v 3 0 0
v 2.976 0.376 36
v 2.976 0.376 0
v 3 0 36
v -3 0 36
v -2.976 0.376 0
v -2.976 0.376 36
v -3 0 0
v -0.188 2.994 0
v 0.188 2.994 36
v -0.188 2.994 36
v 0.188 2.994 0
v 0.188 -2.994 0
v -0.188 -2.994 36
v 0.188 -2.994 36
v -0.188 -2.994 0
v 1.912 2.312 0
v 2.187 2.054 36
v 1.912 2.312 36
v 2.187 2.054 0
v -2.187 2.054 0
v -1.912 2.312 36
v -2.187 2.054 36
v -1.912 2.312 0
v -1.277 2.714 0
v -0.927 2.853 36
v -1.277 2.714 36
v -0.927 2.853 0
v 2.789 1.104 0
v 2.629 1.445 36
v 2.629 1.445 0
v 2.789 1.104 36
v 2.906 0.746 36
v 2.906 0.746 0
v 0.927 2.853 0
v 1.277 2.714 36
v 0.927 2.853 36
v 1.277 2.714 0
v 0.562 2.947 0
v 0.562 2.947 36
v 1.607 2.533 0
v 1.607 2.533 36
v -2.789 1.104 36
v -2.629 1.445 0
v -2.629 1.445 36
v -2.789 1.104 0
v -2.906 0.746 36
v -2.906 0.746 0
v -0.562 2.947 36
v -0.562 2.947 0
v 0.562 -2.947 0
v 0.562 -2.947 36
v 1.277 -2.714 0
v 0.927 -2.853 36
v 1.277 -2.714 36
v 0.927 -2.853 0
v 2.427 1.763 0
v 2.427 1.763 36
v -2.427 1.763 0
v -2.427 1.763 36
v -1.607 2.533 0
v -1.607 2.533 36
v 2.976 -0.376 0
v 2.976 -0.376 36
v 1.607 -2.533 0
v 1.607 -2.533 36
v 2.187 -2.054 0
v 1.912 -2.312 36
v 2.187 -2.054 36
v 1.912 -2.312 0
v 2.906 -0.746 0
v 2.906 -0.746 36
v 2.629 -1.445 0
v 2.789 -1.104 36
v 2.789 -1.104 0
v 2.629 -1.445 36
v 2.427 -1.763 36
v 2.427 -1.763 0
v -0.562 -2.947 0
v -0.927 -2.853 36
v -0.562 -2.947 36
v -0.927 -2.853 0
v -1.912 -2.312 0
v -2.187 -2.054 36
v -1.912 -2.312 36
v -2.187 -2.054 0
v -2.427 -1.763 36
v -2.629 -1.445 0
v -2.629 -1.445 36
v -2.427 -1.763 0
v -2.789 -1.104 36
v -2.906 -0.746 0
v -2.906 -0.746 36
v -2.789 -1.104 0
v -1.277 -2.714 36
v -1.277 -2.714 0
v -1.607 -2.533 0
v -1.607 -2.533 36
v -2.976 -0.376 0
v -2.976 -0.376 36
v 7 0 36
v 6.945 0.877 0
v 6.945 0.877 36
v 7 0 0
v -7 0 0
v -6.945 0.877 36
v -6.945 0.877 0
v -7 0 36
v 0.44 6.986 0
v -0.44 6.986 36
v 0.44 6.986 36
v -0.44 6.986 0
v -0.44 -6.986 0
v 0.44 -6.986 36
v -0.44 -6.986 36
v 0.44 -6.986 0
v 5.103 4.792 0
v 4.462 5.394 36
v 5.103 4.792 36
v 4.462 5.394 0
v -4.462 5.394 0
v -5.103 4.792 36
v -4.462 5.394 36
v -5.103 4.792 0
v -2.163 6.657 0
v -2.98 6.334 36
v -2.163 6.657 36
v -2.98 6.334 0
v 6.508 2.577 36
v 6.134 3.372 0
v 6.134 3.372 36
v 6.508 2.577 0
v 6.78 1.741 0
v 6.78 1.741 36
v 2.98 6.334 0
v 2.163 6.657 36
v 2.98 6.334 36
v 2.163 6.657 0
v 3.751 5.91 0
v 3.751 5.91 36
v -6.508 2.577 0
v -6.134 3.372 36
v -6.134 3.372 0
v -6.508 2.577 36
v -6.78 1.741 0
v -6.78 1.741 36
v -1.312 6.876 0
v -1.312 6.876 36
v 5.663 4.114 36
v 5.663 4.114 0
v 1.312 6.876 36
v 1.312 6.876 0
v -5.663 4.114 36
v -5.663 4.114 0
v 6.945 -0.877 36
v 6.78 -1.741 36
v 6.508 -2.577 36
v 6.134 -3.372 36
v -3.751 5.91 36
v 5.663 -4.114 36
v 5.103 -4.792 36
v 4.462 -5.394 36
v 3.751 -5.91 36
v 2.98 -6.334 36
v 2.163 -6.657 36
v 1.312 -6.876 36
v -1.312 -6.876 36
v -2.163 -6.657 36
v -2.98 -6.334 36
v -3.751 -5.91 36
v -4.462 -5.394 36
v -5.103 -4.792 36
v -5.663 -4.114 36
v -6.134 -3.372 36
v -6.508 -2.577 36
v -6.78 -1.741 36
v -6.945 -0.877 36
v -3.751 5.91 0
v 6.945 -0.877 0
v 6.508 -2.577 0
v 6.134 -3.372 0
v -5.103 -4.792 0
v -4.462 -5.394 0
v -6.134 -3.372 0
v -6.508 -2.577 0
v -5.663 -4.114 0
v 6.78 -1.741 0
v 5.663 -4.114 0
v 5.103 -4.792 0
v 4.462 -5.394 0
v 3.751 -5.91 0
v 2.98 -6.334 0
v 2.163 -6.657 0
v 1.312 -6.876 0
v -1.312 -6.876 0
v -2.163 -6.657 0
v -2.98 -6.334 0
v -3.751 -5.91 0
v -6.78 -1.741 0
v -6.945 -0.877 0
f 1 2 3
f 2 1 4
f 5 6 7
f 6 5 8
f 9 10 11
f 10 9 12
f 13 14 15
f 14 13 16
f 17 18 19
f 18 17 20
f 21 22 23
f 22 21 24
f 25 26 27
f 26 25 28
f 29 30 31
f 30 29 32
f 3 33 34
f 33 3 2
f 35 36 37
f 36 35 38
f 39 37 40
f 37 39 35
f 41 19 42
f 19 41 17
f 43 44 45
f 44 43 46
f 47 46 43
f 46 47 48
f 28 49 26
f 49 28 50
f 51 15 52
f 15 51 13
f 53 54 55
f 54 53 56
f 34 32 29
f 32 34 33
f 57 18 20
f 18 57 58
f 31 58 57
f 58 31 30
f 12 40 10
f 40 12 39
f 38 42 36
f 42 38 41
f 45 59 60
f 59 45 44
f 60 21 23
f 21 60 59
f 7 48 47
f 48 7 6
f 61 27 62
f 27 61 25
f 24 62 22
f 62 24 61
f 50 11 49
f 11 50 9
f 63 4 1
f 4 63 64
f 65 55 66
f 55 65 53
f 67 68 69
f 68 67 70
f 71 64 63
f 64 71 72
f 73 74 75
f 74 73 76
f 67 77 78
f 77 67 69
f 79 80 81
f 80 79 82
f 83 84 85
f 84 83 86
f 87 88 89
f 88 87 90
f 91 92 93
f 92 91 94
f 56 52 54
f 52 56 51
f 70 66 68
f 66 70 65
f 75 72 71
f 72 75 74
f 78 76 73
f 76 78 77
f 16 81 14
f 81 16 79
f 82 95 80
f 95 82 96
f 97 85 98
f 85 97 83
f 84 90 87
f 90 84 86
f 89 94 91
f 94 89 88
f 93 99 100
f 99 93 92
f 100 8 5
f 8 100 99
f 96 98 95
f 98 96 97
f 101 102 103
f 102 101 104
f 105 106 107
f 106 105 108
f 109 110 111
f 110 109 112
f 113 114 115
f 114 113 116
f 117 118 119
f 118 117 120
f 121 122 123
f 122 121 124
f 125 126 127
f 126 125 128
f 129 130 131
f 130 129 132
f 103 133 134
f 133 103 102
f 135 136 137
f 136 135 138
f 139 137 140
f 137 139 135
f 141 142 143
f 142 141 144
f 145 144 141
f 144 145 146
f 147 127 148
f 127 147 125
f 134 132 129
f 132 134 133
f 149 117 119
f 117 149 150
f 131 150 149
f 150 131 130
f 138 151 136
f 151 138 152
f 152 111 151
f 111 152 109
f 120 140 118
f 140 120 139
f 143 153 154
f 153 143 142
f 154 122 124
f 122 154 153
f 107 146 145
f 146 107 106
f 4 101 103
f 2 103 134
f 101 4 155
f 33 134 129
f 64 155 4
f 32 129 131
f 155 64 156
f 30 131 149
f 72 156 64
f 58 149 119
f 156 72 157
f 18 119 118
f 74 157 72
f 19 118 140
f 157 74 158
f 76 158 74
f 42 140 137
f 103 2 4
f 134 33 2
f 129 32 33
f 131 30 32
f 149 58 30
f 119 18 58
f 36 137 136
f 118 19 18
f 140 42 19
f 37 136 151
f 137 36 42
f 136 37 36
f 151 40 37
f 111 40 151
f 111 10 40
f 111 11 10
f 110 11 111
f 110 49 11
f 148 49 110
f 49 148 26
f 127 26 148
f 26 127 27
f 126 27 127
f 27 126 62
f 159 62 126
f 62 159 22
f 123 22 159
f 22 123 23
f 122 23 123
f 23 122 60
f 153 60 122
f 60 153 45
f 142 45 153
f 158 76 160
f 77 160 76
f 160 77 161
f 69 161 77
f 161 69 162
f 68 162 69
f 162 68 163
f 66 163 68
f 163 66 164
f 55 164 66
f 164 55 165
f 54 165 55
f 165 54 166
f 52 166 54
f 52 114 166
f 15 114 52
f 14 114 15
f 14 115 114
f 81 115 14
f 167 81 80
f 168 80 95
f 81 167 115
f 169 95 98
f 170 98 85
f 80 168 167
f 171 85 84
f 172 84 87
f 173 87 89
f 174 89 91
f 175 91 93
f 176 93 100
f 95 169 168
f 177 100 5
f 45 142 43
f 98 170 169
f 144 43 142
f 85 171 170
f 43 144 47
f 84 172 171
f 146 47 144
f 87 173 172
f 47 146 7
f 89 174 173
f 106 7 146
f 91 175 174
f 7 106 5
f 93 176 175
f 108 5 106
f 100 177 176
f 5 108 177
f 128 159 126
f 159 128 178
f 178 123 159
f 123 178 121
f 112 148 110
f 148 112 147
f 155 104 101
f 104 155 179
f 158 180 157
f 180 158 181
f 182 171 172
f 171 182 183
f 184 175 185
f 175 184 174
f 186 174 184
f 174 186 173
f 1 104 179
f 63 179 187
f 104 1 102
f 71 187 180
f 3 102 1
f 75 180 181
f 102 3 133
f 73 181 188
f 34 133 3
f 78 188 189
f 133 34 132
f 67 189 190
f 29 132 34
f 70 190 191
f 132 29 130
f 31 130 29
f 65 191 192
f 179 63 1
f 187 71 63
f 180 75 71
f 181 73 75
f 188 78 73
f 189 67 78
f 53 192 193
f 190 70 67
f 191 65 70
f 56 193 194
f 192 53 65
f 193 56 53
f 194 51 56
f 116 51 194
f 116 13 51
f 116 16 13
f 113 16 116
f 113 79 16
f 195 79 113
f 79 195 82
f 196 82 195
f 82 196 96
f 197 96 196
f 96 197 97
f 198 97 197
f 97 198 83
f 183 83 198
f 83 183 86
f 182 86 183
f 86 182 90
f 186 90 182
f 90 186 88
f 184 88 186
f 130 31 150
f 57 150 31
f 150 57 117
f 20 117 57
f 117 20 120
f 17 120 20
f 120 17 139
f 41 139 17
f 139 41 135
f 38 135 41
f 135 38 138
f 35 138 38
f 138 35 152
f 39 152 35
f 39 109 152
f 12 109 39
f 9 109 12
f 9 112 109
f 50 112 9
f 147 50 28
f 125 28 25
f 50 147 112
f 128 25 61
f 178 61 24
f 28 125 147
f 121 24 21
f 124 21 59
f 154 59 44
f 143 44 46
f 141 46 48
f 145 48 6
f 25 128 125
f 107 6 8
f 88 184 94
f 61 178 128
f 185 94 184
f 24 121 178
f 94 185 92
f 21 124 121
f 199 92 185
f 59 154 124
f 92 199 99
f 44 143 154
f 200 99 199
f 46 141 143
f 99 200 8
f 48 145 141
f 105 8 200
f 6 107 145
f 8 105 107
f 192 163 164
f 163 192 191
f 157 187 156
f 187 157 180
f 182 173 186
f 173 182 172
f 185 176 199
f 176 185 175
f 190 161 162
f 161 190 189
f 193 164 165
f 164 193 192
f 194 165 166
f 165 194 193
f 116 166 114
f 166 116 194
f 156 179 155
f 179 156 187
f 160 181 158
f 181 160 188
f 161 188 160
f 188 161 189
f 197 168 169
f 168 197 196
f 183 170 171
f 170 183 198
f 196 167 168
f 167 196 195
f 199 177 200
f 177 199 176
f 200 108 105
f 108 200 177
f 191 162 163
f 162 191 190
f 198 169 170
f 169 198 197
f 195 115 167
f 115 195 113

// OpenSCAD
$fn = 50;


difference() {
	union() {
		cylinder(h = 36, r = 7.0000000000);
	}
	union() {
		translate(v = [0, 0, -100]) {
			cylinder(h = 200, r = 3.0000000000);
		}
	}
}
